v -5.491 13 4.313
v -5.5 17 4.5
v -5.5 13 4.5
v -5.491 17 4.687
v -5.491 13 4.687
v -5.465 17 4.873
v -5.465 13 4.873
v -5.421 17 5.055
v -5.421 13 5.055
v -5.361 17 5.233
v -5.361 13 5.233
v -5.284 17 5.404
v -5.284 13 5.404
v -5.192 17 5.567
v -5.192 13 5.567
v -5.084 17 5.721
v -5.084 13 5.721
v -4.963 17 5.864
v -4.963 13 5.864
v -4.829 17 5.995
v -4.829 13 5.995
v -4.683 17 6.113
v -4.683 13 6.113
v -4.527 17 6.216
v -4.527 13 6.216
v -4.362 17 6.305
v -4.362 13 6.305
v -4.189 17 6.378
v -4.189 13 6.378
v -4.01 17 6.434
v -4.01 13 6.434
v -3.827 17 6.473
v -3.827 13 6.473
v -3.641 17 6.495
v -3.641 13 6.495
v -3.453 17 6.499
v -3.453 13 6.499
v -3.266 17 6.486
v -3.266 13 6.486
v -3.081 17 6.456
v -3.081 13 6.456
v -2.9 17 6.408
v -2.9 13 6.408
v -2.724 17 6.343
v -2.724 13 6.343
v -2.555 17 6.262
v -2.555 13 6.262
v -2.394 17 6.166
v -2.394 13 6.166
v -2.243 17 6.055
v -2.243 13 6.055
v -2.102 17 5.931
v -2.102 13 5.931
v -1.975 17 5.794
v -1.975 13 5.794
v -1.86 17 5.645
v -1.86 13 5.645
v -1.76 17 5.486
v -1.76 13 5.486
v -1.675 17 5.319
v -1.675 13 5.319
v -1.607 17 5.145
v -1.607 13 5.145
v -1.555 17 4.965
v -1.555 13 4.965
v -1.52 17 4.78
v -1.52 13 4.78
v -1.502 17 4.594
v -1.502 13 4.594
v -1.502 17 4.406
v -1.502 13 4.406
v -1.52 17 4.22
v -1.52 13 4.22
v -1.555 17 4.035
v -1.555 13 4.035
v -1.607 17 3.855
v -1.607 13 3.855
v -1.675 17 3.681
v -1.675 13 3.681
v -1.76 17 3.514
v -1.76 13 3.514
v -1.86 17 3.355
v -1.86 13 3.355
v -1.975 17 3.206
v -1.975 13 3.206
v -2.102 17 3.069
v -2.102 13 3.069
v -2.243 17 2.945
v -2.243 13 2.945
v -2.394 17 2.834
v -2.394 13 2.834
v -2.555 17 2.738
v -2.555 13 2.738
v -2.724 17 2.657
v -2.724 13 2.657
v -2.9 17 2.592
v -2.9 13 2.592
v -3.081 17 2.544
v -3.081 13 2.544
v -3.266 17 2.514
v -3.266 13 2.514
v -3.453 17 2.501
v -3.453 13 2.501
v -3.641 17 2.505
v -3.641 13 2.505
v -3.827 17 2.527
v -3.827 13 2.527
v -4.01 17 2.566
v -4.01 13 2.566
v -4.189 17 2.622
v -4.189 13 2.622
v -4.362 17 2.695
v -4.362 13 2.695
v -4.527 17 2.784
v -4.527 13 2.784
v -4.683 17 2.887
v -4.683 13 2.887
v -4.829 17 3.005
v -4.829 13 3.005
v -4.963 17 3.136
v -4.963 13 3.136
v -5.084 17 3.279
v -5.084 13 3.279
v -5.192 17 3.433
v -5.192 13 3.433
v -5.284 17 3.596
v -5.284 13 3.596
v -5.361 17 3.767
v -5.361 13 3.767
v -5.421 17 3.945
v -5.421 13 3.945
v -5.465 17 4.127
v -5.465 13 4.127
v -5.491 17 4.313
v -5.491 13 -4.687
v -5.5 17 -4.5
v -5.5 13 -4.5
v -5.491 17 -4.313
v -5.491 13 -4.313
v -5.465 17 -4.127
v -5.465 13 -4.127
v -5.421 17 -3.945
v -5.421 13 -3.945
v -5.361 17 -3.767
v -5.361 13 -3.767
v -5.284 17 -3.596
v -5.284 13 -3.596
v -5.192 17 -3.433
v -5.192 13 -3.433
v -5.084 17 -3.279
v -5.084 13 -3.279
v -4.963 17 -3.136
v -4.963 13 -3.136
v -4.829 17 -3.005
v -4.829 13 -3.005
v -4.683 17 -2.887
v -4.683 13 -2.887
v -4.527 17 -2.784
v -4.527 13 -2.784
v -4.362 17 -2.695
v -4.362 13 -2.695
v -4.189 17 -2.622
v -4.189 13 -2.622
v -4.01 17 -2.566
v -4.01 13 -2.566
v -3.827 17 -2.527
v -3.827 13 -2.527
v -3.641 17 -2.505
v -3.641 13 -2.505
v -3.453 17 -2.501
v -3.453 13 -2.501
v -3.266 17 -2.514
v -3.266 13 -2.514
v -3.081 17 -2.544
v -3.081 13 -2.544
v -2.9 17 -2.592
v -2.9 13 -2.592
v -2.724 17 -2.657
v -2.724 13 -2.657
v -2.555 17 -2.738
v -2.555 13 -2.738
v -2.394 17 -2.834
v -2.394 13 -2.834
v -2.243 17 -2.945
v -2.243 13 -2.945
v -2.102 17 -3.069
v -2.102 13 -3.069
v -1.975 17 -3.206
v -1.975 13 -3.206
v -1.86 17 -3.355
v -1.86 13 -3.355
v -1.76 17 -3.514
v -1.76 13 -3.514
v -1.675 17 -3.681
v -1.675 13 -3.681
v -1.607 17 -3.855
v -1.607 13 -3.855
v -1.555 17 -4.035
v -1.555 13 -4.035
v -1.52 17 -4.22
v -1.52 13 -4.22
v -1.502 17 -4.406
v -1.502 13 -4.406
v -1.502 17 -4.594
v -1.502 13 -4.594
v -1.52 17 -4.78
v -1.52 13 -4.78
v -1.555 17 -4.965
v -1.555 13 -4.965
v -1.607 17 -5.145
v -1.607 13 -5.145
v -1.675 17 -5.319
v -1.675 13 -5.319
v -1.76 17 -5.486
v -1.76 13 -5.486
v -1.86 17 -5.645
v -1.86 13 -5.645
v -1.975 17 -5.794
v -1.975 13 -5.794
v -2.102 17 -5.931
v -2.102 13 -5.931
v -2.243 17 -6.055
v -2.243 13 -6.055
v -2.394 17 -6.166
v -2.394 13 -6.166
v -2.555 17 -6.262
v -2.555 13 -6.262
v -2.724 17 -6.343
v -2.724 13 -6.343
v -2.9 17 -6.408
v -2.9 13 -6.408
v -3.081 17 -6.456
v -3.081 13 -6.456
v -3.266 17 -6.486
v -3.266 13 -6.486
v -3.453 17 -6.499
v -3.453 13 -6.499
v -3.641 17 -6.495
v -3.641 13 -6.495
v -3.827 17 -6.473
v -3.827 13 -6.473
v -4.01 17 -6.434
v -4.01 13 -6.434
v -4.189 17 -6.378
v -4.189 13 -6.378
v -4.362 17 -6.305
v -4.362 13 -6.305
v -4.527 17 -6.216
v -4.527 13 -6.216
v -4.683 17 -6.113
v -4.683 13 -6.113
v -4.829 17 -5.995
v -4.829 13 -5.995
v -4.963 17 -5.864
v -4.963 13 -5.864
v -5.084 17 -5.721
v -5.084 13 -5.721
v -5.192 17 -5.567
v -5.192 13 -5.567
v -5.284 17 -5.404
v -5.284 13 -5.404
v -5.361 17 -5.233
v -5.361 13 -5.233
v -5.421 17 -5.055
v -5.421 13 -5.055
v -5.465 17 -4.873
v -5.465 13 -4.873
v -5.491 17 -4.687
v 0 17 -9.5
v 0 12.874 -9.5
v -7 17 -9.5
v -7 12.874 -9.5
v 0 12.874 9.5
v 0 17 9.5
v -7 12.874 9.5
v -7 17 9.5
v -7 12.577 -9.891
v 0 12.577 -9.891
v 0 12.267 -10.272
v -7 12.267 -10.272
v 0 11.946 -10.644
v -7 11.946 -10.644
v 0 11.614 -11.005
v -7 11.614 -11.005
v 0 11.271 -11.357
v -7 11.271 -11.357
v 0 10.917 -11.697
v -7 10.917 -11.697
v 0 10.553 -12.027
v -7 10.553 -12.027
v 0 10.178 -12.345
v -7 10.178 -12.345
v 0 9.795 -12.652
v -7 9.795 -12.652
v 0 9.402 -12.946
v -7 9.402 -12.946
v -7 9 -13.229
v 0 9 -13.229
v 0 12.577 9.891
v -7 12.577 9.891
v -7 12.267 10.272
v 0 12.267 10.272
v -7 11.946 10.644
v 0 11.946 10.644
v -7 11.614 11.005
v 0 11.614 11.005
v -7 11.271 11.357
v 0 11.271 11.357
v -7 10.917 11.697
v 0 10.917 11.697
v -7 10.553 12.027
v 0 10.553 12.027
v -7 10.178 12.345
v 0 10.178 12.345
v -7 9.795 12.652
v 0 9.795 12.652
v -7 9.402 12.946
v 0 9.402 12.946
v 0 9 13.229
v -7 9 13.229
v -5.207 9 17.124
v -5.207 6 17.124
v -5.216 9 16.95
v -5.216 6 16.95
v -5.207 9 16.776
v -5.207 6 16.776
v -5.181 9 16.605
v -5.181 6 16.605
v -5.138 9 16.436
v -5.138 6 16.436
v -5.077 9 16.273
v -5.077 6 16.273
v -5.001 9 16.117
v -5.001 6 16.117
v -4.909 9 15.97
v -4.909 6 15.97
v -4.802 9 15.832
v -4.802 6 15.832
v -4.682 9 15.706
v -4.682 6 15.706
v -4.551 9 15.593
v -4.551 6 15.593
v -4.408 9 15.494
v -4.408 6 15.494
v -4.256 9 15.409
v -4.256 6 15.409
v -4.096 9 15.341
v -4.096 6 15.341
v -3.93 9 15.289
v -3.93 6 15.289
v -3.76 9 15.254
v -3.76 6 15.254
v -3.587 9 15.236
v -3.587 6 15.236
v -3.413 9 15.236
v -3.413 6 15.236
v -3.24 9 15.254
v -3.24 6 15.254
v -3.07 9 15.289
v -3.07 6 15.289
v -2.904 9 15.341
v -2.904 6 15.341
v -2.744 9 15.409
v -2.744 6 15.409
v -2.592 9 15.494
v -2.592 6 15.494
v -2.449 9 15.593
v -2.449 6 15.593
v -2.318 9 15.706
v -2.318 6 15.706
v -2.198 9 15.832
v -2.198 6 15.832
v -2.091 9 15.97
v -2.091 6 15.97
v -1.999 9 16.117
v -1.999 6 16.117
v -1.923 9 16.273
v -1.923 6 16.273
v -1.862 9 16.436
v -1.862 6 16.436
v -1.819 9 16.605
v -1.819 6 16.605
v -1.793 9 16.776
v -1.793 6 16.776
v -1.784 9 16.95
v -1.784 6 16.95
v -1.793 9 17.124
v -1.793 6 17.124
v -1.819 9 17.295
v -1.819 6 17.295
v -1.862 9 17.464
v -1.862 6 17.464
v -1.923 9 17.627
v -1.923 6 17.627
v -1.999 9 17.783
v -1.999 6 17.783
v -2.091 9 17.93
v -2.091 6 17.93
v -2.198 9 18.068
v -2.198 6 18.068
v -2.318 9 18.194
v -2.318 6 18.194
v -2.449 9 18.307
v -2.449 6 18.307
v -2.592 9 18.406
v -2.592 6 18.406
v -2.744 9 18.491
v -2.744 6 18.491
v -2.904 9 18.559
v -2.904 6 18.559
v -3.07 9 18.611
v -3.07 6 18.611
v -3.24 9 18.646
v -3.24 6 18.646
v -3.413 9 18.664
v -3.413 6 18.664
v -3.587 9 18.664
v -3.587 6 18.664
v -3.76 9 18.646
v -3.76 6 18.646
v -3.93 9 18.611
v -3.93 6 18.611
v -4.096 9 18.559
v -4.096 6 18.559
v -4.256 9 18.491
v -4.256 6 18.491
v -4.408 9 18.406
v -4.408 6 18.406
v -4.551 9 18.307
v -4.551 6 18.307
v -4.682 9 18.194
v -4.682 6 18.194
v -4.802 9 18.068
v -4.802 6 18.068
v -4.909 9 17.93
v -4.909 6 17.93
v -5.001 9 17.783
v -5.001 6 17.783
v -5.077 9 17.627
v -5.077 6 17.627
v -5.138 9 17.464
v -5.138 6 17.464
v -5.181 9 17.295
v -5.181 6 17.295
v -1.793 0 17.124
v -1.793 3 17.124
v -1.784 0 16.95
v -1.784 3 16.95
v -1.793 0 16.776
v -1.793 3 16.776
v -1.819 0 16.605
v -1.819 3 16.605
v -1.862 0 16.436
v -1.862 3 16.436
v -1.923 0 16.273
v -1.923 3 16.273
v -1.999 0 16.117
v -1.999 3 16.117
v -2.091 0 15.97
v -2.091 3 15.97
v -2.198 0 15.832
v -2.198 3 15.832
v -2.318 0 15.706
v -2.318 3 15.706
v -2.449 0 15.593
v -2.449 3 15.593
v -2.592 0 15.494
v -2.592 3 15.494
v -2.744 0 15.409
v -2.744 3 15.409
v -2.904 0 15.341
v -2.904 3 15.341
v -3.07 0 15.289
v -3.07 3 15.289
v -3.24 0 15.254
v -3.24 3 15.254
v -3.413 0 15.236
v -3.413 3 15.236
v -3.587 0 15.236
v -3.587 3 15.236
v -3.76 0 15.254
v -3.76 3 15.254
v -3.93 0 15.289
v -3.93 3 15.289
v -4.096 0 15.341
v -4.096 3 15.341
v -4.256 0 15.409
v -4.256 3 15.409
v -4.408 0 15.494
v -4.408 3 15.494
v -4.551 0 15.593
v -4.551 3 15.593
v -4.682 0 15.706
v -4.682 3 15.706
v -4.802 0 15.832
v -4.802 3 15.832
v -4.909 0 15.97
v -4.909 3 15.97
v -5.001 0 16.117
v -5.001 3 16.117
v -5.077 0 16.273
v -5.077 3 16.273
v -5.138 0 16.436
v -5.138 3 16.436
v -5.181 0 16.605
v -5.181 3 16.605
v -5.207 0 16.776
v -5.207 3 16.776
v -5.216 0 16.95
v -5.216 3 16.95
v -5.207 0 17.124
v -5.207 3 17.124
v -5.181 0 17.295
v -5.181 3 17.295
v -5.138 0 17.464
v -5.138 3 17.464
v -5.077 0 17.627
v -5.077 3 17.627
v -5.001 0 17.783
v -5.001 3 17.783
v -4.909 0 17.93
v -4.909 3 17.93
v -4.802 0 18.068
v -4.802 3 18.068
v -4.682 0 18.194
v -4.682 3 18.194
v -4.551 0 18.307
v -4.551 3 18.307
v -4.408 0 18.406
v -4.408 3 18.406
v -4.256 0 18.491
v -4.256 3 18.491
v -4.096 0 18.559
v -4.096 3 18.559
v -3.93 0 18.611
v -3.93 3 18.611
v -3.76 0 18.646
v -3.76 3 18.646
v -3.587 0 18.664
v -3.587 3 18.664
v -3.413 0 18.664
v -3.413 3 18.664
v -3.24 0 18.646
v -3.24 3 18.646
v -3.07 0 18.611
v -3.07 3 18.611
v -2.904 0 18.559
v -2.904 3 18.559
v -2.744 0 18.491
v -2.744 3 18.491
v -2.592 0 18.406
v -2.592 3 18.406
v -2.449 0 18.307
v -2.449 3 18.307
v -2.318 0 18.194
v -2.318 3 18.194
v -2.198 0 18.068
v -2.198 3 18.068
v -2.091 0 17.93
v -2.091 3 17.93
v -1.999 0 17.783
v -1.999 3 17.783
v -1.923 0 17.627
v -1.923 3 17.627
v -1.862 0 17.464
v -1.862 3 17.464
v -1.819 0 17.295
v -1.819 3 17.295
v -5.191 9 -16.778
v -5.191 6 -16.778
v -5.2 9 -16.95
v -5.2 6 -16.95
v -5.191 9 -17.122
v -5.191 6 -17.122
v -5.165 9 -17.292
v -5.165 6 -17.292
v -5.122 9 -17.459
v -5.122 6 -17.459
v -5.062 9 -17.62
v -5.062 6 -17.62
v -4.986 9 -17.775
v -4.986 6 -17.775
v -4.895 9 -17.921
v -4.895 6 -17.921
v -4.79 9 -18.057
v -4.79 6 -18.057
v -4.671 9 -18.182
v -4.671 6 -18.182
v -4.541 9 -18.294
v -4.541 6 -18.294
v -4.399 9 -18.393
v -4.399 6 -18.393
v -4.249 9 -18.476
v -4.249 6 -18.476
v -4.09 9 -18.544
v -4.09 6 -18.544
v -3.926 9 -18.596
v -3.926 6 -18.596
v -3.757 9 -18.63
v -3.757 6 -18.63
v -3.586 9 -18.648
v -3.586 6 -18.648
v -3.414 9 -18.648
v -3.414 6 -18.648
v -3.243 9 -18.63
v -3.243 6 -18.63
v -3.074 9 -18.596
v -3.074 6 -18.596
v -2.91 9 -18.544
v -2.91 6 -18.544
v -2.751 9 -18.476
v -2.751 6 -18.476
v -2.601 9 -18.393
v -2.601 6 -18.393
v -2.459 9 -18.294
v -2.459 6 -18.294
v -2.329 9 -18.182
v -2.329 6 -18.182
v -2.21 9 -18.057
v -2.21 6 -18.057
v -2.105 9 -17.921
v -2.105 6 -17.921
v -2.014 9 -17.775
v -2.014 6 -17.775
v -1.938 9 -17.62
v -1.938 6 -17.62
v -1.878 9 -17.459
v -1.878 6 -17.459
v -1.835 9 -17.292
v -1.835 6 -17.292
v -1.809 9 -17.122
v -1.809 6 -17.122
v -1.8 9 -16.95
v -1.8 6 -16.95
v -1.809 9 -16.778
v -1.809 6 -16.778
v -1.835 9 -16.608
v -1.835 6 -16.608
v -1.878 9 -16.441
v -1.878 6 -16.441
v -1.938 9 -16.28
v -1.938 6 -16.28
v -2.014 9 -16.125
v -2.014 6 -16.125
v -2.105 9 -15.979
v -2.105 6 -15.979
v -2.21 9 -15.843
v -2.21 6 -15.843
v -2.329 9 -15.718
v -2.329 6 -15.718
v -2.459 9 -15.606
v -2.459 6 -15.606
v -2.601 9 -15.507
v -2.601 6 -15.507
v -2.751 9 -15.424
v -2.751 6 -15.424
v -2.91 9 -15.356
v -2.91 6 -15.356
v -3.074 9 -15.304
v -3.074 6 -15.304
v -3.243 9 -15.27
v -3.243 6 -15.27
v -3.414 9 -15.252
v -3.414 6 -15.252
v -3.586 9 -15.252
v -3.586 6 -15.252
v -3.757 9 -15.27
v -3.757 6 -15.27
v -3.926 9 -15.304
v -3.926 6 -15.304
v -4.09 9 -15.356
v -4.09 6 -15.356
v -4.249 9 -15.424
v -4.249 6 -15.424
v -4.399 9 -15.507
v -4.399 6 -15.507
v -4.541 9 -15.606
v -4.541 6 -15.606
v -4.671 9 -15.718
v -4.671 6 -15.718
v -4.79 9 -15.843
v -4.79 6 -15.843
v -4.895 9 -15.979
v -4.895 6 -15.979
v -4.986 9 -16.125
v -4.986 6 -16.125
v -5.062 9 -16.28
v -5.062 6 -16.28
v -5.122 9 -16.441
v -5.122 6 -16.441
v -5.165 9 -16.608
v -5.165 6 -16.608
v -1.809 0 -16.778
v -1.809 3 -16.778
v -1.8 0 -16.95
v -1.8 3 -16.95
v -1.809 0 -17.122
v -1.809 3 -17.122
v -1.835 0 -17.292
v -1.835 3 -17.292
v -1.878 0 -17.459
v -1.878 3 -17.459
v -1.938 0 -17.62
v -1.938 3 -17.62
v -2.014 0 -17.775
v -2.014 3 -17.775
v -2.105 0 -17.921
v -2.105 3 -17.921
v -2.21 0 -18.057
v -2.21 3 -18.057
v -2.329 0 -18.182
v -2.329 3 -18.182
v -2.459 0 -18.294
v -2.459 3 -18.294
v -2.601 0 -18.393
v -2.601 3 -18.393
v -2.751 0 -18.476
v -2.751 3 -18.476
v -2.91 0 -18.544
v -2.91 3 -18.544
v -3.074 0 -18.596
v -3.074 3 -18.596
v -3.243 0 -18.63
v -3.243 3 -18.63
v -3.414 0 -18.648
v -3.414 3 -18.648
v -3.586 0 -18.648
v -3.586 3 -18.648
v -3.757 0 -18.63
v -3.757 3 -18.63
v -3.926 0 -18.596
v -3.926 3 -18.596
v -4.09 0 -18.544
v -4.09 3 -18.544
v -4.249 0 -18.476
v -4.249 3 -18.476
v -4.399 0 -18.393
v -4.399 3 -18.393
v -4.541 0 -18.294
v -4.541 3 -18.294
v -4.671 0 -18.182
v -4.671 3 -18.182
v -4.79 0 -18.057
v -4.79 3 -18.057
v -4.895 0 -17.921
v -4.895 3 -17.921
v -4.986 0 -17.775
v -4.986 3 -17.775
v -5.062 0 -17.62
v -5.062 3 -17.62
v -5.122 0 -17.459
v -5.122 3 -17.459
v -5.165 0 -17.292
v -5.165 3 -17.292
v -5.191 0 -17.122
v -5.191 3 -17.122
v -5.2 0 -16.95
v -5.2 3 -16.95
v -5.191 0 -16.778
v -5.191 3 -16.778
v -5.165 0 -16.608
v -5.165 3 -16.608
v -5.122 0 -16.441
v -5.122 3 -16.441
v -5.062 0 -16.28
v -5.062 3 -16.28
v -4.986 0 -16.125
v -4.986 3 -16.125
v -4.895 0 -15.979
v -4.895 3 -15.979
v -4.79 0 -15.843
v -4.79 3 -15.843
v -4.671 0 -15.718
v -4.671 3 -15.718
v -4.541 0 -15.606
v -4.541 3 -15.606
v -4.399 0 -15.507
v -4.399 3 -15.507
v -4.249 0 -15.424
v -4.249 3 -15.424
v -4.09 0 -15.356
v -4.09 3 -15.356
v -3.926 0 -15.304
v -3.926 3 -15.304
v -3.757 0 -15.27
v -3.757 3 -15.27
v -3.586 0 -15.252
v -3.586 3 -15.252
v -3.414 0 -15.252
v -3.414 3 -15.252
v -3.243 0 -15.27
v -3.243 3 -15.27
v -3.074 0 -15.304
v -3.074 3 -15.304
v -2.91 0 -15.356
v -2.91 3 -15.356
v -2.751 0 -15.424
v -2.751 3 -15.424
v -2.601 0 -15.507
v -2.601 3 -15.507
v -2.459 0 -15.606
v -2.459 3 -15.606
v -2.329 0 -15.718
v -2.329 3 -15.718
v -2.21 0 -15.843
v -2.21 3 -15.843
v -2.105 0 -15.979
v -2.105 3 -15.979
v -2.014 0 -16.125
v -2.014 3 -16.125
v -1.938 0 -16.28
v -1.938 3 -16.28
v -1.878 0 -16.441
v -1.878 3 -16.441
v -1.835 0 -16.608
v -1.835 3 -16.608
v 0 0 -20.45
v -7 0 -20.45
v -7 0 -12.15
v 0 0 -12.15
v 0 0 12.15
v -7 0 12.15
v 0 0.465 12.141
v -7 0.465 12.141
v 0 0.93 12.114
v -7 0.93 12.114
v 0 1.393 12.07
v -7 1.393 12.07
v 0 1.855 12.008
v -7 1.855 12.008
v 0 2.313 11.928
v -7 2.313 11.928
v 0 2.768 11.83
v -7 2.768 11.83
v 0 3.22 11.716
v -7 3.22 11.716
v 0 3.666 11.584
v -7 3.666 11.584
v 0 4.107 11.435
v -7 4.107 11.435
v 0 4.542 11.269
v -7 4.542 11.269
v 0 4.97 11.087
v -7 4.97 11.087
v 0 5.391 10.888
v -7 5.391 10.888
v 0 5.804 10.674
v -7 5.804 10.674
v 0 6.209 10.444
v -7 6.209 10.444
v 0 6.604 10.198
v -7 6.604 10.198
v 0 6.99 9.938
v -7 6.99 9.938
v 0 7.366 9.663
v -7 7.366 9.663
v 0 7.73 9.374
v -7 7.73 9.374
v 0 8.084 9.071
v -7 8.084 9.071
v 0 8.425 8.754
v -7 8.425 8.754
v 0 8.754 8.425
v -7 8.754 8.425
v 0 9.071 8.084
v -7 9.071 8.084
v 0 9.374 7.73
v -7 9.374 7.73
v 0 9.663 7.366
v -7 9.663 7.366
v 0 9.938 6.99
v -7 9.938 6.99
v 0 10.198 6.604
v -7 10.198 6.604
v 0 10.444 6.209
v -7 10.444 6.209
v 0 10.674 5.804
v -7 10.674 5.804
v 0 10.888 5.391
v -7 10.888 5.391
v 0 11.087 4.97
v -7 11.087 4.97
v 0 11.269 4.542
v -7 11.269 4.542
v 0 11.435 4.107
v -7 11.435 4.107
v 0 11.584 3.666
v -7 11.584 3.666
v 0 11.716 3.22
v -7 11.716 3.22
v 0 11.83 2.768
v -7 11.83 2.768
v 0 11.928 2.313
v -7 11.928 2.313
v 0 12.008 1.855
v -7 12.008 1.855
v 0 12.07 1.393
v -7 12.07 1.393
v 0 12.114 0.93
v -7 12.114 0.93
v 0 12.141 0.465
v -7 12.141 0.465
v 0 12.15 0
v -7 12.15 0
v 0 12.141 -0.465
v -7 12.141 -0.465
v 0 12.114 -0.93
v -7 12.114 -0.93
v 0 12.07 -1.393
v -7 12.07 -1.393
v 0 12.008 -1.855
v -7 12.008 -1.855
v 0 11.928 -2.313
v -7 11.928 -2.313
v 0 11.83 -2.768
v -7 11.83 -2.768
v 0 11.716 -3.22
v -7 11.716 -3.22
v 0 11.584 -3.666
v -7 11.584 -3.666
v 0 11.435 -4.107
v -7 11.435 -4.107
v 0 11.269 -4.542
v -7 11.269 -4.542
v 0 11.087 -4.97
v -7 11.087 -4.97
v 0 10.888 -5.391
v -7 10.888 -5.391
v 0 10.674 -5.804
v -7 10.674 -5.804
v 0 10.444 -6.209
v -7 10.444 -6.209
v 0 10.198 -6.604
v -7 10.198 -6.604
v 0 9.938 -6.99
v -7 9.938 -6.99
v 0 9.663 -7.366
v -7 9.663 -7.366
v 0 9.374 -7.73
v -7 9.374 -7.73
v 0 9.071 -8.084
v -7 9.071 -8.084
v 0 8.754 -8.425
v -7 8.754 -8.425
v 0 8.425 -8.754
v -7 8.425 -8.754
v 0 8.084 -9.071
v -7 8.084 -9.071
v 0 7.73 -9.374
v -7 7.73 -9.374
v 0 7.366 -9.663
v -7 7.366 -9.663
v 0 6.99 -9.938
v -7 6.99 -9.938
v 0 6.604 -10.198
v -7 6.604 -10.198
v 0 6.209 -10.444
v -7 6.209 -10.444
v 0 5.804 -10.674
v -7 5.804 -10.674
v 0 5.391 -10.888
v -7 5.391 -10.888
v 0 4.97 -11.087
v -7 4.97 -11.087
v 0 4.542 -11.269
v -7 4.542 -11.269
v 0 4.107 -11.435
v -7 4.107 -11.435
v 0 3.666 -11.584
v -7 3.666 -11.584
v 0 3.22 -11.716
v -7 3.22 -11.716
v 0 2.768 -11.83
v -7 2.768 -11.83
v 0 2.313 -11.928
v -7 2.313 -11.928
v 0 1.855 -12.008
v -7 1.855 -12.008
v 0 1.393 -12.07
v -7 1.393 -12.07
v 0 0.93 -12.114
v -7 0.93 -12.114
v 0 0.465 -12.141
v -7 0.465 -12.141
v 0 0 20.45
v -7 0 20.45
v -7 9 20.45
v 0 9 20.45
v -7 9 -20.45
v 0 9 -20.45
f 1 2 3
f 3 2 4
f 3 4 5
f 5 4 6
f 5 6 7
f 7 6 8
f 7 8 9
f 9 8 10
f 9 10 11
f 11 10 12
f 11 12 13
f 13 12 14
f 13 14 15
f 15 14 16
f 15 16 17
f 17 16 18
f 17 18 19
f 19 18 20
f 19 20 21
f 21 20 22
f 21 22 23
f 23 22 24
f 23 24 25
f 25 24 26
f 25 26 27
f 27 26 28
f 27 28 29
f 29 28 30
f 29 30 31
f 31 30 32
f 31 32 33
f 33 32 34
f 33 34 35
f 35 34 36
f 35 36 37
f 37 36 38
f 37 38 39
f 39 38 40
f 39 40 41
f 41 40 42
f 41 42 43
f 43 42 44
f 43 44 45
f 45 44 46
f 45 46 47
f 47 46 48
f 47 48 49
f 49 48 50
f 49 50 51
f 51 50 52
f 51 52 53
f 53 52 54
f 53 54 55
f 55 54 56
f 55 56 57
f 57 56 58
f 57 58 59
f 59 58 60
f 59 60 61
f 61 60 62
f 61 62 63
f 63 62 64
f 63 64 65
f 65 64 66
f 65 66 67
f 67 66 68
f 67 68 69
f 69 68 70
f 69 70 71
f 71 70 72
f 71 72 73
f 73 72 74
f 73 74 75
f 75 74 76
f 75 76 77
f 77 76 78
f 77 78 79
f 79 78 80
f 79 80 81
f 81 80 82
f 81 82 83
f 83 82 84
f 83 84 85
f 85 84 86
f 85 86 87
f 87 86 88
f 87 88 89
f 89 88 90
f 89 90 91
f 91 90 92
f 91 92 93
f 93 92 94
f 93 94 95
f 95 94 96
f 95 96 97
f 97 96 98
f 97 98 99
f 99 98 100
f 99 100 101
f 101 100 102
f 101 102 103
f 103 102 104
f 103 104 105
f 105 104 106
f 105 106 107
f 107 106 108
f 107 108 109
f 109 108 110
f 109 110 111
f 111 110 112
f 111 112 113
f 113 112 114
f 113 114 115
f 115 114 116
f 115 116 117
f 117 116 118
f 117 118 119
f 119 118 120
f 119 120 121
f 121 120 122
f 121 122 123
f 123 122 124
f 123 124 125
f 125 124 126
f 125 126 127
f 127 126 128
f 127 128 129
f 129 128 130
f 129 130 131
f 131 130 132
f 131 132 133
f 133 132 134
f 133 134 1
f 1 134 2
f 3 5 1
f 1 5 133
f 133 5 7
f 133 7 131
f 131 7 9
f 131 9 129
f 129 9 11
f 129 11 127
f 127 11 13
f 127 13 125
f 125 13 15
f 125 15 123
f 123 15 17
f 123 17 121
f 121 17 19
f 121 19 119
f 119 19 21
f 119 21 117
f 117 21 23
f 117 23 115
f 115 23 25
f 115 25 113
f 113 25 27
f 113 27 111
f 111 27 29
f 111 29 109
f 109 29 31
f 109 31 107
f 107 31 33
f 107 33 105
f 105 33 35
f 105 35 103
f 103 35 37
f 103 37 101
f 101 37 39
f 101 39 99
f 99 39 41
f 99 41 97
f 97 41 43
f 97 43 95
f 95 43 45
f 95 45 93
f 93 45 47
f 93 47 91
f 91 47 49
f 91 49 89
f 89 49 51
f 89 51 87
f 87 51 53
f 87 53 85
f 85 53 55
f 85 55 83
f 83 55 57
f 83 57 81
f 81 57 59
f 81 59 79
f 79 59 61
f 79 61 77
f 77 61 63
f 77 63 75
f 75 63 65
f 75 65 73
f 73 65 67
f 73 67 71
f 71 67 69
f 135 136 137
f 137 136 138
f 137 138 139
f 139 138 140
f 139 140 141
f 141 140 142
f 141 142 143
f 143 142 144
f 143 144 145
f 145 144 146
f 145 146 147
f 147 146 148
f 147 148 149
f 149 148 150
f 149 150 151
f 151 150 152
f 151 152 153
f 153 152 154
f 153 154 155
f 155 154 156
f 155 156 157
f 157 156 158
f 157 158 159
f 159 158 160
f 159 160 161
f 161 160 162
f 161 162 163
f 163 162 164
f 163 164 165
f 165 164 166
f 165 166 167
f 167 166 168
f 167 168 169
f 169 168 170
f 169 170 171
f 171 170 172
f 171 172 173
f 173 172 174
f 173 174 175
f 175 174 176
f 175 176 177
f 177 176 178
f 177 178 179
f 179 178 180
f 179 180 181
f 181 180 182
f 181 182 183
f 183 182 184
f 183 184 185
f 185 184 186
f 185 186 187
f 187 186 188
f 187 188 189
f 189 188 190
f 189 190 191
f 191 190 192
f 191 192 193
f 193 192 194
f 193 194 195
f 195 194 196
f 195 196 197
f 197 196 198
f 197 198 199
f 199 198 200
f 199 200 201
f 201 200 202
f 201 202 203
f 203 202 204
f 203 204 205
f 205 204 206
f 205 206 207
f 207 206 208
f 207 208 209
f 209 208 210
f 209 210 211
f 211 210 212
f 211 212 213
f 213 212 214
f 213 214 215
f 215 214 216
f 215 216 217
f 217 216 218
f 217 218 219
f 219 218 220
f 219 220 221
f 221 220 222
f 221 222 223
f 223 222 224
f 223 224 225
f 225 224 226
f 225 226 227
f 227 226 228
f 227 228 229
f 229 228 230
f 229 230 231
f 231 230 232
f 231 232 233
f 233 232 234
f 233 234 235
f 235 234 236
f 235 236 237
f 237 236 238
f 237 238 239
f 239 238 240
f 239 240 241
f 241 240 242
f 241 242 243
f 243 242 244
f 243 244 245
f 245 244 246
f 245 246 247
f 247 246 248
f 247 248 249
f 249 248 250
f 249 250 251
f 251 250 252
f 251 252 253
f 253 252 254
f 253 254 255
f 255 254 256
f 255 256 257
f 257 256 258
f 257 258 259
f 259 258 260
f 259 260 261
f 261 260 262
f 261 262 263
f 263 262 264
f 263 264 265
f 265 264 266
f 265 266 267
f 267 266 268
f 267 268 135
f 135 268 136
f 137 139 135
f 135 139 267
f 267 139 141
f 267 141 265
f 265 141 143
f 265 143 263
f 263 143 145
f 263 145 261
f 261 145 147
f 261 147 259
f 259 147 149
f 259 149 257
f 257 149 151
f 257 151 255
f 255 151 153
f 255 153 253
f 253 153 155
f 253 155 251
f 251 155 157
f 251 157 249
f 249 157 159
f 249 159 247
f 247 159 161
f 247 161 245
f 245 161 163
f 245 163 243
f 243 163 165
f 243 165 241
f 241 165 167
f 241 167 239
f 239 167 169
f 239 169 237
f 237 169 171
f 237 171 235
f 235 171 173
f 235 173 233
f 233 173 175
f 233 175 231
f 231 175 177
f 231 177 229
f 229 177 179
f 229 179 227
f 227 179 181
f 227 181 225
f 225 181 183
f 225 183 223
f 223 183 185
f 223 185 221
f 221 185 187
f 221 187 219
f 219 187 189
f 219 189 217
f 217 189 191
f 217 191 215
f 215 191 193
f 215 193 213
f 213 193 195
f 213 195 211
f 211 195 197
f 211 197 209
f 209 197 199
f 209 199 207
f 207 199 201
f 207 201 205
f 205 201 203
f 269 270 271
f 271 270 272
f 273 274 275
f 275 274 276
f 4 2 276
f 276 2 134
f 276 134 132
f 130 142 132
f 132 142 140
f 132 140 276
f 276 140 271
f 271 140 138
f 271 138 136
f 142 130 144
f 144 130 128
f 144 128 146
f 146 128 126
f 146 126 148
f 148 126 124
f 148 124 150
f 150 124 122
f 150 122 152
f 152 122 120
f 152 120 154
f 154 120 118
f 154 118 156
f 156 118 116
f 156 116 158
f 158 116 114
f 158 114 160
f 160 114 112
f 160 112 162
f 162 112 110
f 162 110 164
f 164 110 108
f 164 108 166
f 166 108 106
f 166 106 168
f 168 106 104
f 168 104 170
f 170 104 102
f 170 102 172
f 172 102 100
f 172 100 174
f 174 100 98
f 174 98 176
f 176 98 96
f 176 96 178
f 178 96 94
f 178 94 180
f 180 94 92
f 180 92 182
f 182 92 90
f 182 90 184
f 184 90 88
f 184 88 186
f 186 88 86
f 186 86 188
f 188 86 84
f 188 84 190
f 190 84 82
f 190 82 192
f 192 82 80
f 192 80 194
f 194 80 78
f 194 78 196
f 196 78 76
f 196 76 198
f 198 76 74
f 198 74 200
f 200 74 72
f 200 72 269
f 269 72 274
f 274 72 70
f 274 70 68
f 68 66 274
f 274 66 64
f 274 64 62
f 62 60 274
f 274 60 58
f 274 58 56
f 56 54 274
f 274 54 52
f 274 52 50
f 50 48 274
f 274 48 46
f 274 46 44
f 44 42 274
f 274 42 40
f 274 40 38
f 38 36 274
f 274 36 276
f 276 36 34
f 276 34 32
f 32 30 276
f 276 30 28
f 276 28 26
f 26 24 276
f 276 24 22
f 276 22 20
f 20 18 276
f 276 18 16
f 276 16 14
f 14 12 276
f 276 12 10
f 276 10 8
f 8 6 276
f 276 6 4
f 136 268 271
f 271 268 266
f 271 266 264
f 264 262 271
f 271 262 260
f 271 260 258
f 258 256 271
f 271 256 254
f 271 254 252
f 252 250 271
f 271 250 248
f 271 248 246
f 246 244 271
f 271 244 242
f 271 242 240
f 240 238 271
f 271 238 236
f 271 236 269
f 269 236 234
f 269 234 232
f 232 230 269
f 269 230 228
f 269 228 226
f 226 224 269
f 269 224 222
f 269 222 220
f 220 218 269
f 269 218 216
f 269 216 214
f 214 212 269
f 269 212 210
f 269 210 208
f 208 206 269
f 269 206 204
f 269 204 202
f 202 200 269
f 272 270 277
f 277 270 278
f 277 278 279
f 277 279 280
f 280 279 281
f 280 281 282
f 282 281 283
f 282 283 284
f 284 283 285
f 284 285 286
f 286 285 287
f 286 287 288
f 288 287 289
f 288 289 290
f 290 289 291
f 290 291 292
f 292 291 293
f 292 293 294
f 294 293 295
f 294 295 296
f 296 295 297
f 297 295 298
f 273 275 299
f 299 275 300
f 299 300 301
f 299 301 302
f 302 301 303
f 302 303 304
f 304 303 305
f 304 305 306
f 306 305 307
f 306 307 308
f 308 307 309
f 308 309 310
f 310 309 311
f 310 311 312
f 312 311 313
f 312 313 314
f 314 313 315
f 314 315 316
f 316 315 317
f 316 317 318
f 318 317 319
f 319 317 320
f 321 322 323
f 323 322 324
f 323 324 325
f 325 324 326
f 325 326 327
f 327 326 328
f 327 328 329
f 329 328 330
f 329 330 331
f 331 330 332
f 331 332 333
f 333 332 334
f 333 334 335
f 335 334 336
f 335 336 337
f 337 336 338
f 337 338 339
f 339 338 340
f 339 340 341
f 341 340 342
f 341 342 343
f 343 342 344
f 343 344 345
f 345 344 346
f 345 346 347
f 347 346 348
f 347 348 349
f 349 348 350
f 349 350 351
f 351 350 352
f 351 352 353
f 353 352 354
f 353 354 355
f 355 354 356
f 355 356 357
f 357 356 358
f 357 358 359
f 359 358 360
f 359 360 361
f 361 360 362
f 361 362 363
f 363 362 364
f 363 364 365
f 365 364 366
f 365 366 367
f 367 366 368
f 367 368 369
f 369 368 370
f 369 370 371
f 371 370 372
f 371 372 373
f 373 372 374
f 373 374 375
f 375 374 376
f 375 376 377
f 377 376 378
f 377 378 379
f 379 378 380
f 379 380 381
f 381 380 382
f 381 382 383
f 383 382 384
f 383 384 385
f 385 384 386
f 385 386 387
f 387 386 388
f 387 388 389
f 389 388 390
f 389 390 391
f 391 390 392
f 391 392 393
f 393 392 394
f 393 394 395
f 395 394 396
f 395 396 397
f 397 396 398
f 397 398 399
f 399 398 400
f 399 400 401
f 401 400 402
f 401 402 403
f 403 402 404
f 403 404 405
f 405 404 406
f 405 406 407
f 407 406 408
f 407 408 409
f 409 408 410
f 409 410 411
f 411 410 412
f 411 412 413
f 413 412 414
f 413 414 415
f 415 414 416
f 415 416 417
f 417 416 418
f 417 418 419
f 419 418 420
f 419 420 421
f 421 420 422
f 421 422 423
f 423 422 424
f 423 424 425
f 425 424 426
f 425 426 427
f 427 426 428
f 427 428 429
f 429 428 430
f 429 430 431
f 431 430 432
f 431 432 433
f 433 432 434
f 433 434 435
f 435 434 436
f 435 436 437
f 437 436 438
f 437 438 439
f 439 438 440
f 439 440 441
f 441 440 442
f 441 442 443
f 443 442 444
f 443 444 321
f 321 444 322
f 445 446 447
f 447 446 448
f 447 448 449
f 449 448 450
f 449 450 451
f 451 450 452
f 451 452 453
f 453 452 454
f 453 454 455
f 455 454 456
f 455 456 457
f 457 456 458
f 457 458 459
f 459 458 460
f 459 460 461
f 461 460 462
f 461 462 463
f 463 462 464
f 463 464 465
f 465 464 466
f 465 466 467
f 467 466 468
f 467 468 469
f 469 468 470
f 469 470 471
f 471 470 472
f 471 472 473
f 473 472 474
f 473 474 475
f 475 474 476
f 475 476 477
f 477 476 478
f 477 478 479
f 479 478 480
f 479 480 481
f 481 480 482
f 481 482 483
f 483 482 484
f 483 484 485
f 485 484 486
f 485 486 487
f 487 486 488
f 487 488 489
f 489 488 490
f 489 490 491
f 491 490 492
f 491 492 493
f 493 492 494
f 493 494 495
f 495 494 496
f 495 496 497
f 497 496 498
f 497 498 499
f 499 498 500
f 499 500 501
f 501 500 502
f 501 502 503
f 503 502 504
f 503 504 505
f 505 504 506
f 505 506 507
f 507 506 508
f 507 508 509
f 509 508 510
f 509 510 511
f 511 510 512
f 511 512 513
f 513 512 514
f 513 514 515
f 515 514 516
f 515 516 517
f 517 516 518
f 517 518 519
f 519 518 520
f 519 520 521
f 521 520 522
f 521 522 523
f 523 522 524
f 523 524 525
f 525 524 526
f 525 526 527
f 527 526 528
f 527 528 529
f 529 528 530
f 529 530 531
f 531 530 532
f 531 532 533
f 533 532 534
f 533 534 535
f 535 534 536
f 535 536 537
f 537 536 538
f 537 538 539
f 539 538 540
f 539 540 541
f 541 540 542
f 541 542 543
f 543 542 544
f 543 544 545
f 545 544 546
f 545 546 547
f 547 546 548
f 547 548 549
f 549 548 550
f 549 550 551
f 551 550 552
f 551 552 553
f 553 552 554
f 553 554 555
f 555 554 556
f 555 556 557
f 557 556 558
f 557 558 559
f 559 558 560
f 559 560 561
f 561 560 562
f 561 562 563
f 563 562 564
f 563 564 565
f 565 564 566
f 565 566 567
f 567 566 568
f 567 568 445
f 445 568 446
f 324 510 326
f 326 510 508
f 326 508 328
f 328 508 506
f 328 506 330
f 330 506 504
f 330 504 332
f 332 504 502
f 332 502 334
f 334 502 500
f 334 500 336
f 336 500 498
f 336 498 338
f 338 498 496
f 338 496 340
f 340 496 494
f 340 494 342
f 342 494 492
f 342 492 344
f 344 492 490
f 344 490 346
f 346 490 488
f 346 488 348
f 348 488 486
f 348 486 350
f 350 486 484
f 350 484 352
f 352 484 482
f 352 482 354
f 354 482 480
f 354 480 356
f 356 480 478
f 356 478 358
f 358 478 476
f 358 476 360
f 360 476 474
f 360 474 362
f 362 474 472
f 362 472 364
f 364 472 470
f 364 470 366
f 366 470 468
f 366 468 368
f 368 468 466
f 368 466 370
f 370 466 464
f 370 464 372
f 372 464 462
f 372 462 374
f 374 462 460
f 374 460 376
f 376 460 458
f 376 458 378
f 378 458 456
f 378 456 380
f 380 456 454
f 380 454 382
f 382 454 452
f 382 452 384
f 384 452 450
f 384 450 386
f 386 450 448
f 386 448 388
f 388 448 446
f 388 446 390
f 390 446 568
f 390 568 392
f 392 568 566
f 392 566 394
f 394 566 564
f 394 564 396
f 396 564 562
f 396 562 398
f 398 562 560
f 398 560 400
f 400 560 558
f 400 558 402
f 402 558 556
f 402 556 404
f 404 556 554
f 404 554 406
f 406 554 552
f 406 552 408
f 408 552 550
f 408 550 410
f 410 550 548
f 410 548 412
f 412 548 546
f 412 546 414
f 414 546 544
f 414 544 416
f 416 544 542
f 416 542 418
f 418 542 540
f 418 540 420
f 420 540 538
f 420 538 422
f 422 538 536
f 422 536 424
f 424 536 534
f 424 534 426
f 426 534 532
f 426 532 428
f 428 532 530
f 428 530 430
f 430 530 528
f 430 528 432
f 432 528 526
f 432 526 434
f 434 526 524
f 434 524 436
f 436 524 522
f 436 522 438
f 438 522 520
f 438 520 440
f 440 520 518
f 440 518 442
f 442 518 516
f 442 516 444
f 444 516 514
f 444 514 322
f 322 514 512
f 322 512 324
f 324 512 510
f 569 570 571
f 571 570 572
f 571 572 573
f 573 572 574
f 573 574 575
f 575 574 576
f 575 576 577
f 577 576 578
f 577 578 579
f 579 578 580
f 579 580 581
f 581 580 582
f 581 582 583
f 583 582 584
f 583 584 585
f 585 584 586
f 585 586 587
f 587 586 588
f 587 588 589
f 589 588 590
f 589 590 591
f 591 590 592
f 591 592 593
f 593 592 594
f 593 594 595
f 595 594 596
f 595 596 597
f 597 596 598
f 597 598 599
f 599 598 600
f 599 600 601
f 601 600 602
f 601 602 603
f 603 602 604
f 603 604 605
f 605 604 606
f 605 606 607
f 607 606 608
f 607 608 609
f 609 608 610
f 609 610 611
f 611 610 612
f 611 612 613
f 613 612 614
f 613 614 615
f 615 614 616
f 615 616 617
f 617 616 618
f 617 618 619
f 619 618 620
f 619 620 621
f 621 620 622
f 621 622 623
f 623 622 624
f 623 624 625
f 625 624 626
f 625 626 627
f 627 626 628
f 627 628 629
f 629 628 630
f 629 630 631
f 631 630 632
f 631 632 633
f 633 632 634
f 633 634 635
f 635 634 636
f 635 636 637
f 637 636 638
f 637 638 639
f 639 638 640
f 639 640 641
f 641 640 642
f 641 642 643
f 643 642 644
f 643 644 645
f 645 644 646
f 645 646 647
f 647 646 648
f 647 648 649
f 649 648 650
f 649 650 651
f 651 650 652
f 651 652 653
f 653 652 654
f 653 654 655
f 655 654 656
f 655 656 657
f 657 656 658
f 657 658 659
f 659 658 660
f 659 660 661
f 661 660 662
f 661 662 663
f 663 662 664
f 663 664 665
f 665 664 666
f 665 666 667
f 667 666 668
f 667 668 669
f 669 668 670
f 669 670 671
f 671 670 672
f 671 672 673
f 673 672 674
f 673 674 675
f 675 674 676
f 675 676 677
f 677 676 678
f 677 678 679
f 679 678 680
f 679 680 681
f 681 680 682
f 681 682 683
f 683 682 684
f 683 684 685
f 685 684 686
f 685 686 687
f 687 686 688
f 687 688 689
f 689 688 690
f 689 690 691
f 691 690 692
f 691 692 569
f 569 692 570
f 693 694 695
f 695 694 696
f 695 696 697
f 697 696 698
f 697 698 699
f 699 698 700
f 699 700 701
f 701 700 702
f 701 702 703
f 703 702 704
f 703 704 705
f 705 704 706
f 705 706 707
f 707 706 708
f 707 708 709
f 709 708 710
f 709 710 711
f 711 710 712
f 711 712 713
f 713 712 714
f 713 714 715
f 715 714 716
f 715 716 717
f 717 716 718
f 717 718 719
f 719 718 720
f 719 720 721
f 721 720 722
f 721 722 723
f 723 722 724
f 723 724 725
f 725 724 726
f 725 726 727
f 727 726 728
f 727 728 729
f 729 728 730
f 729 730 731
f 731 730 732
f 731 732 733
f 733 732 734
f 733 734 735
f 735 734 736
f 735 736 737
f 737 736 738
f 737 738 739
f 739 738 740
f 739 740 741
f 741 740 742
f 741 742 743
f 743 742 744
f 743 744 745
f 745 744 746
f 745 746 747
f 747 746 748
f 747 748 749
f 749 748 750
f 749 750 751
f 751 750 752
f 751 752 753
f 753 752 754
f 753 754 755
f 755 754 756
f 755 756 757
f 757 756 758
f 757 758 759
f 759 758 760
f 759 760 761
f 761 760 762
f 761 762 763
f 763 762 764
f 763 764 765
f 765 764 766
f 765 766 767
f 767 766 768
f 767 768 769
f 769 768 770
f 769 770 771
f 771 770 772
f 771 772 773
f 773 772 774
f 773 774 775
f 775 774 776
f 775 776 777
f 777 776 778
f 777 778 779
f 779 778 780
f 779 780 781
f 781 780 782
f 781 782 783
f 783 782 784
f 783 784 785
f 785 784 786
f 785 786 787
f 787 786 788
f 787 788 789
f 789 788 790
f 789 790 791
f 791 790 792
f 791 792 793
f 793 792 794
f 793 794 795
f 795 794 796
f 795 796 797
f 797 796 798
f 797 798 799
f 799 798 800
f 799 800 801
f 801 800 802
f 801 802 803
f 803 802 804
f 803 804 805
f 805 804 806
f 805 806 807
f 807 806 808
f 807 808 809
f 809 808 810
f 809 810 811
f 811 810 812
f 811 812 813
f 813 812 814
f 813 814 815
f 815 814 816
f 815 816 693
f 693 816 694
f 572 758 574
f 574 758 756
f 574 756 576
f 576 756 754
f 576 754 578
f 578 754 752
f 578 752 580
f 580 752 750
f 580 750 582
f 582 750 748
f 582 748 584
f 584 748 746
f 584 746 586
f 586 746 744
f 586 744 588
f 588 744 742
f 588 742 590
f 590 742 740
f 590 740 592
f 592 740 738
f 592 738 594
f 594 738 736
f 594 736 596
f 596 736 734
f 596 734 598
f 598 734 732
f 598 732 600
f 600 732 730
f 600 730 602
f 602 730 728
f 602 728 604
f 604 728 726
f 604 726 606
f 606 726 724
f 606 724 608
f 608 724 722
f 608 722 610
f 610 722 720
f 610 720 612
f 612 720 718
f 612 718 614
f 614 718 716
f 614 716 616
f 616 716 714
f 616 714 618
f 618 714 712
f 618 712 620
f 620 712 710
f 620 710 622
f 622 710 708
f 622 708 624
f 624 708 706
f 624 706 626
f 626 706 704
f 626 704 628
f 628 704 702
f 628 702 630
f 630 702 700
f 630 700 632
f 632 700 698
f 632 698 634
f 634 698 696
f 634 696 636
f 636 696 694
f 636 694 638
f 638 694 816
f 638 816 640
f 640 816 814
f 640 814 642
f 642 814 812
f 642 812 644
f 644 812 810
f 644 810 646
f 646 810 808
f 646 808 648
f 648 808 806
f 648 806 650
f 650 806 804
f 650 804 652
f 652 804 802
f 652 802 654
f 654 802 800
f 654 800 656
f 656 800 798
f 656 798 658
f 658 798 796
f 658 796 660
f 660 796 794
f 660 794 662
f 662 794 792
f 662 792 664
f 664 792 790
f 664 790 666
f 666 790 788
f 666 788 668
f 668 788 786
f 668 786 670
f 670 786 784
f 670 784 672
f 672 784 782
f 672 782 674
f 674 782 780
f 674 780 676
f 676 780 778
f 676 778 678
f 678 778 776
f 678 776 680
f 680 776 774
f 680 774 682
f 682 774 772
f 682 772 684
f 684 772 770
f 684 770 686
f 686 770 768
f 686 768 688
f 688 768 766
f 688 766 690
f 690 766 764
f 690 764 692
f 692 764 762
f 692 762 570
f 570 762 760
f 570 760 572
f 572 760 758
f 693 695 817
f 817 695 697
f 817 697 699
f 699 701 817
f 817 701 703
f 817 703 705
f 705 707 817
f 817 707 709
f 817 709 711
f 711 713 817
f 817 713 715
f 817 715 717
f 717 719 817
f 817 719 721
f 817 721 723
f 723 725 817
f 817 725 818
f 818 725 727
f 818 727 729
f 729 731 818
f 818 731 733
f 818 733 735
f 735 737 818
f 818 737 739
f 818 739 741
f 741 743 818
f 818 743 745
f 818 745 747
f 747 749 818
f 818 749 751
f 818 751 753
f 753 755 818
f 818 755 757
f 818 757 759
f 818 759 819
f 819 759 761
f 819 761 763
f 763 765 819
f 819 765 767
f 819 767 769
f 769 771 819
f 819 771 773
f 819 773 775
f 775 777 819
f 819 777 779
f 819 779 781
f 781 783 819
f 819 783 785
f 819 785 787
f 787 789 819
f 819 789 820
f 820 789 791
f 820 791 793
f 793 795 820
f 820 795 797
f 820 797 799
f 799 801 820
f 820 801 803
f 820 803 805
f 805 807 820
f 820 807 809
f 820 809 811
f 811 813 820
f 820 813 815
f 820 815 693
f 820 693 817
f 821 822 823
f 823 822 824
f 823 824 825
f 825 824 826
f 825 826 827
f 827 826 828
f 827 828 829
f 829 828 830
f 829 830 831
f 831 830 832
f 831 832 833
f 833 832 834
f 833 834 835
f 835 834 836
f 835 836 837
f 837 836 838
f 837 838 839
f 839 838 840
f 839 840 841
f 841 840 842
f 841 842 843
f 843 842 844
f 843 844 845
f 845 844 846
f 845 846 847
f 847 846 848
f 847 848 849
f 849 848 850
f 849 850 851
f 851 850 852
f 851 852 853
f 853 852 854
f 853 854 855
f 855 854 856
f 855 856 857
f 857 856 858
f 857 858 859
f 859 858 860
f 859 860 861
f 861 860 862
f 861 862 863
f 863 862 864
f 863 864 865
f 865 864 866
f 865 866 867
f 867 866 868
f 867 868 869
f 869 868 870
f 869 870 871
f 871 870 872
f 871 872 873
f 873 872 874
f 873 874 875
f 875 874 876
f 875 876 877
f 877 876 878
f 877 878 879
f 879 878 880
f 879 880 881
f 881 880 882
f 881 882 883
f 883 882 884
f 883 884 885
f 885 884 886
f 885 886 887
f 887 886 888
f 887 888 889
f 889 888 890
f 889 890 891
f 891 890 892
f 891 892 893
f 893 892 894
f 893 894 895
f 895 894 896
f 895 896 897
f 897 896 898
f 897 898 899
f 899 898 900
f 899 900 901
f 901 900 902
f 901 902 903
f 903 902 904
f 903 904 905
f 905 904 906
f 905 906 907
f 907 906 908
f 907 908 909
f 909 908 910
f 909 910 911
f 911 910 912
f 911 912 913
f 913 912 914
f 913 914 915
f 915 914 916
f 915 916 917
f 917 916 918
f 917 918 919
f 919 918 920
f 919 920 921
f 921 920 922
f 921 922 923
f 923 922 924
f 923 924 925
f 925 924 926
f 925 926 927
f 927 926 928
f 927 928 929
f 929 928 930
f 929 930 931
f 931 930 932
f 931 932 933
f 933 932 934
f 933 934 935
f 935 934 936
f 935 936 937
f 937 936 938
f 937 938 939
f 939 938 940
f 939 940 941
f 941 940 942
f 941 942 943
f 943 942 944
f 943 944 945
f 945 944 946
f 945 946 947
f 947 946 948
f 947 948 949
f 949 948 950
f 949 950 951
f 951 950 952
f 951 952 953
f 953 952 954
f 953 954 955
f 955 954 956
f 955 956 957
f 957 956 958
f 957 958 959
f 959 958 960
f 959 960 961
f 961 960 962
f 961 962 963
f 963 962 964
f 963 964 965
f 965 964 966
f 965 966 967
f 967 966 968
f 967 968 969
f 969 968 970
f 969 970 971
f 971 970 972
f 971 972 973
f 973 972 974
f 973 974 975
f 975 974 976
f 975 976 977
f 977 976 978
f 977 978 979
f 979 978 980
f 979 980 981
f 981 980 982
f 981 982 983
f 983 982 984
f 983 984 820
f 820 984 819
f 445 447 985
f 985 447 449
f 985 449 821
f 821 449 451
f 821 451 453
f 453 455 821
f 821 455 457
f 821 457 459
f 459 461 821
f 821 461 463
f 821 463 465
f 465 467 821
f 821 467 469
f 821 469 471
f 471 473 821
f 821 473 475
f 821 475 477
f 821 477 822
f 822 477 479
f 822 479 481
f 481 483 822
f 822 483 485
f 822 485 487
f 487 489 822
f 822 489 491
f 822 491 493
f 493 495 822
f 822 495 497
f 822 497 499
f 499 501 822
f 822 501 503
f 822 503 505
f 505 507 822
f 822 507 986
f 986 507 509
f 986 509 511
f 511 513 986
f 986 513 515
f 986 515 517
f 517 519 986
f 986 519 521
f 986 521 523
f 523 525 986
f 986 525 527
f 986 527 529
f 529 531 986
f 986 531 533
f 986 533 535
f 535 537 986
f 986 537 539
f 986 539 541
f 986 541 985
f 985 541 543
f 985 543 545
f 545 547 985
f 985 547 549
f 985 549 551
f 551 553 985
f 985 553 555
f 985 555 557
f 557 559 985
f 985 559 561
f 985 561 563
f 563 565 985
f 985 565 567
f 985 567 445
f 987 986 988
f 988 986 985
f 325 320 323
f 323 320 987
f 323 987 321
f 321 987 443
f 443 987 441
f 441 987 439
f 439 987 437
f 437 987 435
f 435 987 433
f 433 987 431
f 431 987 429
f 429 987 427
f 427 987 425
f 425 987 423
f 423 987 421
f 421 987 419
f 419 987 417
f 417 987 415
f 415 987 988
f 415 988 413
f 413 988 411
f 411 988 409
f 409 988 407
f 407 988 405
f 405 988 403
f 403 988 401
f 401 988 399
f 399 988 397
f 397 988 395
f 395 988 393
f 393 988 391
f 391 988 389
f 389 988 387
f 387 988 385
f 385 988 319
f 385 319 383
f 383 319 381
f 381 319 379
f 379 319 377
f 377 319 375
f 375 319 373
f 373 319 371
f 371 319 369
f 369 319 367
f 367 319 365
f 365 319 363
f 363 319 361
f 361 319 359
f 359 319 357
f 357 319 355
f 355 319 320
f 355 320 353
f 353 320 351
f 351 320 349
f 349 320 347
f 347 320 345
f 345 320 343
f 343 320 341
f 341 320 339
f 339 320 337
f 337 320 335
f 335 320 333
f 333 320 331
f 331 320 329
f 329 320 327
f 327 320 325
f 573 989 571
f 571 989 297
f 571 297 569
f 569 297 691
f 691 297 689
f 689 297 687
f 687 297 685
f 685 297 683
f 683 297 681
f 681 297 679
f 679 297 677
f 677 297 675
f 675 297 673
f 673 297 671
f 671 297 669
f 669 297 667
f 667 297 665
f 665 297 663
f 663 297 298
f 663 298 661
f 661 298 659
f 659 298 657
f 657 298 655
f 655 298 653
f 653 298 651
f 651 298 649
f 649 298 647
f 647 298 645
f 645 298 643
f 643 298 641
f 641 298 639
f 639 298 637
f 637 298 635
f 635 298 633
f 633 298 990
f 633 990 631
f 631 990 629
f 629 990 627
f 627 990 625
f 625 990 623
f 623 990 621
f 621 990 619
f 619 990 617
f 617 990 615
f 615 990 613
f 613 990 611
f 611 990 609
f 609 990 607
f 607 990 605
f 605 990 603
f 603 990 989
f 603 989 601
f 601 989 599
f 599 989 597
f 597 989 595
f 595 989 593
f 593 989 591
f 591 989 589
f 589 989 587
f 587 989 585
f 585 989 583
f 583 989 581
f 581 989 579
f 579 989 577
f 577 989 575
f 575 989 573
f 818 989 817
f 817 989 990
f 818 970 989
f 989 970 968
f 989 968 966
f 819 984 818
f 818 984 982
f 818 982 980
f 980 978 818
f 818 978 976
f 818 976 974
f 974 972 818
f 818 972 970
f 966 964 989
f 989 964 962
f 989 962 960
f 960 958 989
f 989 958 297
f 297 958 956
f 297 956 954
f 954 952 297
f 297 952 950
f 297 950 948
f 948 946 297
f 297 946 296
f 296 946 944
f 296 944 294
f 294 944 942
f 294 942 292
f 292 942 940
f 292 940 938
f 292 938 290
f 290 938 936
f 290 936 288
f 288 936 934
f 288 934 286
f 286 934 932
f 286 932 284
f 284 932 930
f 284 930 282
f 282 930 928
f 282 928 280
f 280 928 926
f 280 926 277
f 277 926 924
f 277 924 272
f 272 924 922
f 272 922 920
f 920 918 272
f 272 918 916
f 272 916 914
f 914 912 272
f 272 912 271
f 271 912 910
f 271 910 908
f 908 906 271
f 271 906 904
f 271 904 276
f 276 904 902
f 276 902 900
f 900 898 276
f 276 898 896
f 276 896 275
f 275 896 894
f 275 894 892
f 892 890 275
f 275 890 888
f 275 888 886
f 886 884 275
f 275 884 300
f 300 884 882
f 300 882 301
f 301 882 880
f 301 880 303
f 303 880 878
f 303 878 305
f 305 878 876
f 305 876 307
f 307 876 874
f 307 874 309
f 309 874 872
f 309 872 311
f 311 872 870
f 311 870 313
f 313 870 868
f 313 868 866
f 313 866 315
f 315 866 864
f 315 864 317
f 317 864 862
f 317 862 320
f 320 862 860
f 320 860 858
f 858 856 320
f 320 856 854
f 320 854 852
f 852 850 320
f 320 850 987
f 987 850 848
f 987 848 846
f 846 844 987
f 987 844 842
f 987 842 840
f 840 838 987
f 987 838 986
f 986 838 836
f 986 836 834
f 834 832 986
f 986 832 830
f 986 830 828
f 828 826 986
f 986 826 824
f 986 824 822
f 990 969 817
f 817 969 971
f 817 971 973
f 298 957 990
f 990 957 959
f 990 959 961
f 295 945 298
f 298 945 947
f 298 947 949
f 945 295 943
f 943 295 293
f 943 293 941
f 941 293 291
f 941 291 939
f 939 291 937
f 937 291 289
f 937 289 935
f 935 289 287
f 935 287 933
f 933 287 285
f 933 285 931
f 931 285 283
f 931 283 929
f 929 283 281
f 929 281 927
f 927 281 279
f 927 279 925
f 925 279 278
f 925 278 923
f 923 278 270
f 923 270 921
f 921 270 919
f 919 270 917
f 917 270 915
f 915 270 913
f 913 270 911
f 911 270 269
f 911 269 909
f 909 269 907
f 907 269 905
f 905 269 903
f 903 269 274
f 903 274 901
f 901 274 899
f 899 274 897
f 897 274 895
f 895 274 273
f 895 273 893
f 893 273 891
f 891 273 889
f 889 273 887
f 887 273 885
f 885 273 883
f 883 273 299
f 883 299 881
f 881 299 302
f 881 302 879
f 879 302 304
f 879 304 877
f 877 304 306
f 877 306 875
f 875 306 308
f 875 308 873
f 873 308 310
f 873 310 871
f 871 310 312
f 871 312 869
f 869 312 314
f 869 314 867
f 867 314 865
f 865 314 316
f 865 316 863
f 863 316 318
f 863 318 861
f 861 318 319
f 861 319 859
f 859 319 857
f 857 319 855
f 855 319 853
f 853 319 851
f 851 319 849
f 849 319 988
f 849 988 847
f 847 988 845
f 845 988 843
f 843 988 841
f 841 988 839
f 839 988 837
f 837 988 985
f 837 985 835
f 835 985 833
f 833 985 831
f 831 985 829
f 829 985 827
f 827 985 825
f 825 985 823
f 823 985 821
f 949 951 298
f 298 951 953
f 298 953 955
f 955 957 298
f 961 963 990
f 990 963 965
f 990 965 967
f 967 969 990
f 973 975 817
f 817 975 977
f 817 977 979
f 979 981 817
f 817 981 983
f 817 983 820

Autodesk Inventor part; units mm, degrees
ref_plane "YZ Plane" through (0, 0, 0) normal (1, 0, 0) x (0, 1, 0)
ref_plane "XZ Plane" through (0, 0, 0) normal (0, 1, 0) x (-1, 0, 0)
ref_plane "XY Plane" through (0, 0, 0) normal (0, 0, 1) x (1, 0, 0)
sketch "Skizze1" plane through (0, 0, 0) normal (1, 0, 0) x (0, 1, 0)
  circle A0 centre (0, 0) radius 12.15
  line L0 (0, 16.95) -> (23.4061, 16.95) construction
  line L1 (0, 20.45) -> (9, 20.45)
  arc A1 (16, 0) -> (9, 13.2288) centre (0, 0) ccw
  line L2 (9, 13.2288) -> (9, 20.45)
  line L3 (0, 20.45) -> (0, 12.15)
  line L4 (0, 28.63) -> (0, -28.63) projected
  line L5 (0, 0) -> (16, 0)
  line L6 (0, -20.45) -> (9, -20.45)
  arc A2 (9, -13.2288) -> (16, 0) centre (0, 0) ccw
  line L7 (9, -13.2288) -> (9, -20.45)
  line L8 (0, -20.45) -> (0, -12.15)
  point P0 (0, -12.15)
  dimension "d0" = 24.3
  dimension "d1" = 16.95
  dimension "d2" = 20.45
  dimension "d3" = 9
  dimension "d4" = 16
extrude "Extrusion1" add sketch "Skizze1" against normal blind 7 contours L5 A2 L7 L6 L4 A0 | A0 L3 L1 L2 A1 L5
sketch "Skizze2" plane through (0, 0, 0) normal (0, 1, 0) x (-1, 0, 0)
  circle A0 centre (3.5, 16.95) radius 1.7
  circle A1 centre (3.5, -16.95) radius 1.7162
  line L0 (0, 20.45) -> (7, 20.45) projected
  line L1 (-1.4, 0) -> (8.4, 0) projected
  point P0 (0, 0)
  point P1 (3.5, 20.45)
  point P2 (3.5, 20.45)
  dimension "d9" = 33.9
  dimension "d10" = 3.4
extrude "Extrusion2" cut sketch "Skizze2" along normal through all
sketch "Skizze3" plane through (0, 0, 0) normal (1, 0, 0) x (0, 1, 0)
  arc A0 (9, -13.2288) -> (9, 13.2288) centre (0, 0) ccw projected
  arc A1 (9, -13.2288) -> (9, 13.2288) centre (0, 0) ccw projected
  line L0 (17, 9.5) -> (12.8744, 9.5)
  line L1 (12.8744, 9.5) -> (12.8744, -9.5)
  line L2 (12.8744, -9.5) -> (17, -9.5)
  line L3 (17, -9.5) -> (17, 9.5)
  line L4 (0, -12.15) -> (0, -20.45) projected
  point P0 (12.8744, -9.5)
  dimension "d14" = 19
  dimension "d22" = 17
extrude "Extrusion3" add sketch "Skizze3" against normal up to surface (7 mm away) contours A0 L0 L3 L2
sketch "Skizze4" plane through (0, 17, 9.5) normal (0, 1, 0) x (1, 0, 0)
  circle A0 centre (-3.5, 5) radius 2
  circle A1 centre (-3.5, 14) radius 2
  line L0 (0, 9.5) -> (-10.2525, 9.5)
  line L1 (0, 19) -> (-7, 19) projected
  point P0 (-3.5, 19)
  dimension "d17" = 4
  dimension "d18" = 9
extrude "Extrusion4" cut sketch "Skizze4" against normal blind 4
properties part number "Motorhalter"
